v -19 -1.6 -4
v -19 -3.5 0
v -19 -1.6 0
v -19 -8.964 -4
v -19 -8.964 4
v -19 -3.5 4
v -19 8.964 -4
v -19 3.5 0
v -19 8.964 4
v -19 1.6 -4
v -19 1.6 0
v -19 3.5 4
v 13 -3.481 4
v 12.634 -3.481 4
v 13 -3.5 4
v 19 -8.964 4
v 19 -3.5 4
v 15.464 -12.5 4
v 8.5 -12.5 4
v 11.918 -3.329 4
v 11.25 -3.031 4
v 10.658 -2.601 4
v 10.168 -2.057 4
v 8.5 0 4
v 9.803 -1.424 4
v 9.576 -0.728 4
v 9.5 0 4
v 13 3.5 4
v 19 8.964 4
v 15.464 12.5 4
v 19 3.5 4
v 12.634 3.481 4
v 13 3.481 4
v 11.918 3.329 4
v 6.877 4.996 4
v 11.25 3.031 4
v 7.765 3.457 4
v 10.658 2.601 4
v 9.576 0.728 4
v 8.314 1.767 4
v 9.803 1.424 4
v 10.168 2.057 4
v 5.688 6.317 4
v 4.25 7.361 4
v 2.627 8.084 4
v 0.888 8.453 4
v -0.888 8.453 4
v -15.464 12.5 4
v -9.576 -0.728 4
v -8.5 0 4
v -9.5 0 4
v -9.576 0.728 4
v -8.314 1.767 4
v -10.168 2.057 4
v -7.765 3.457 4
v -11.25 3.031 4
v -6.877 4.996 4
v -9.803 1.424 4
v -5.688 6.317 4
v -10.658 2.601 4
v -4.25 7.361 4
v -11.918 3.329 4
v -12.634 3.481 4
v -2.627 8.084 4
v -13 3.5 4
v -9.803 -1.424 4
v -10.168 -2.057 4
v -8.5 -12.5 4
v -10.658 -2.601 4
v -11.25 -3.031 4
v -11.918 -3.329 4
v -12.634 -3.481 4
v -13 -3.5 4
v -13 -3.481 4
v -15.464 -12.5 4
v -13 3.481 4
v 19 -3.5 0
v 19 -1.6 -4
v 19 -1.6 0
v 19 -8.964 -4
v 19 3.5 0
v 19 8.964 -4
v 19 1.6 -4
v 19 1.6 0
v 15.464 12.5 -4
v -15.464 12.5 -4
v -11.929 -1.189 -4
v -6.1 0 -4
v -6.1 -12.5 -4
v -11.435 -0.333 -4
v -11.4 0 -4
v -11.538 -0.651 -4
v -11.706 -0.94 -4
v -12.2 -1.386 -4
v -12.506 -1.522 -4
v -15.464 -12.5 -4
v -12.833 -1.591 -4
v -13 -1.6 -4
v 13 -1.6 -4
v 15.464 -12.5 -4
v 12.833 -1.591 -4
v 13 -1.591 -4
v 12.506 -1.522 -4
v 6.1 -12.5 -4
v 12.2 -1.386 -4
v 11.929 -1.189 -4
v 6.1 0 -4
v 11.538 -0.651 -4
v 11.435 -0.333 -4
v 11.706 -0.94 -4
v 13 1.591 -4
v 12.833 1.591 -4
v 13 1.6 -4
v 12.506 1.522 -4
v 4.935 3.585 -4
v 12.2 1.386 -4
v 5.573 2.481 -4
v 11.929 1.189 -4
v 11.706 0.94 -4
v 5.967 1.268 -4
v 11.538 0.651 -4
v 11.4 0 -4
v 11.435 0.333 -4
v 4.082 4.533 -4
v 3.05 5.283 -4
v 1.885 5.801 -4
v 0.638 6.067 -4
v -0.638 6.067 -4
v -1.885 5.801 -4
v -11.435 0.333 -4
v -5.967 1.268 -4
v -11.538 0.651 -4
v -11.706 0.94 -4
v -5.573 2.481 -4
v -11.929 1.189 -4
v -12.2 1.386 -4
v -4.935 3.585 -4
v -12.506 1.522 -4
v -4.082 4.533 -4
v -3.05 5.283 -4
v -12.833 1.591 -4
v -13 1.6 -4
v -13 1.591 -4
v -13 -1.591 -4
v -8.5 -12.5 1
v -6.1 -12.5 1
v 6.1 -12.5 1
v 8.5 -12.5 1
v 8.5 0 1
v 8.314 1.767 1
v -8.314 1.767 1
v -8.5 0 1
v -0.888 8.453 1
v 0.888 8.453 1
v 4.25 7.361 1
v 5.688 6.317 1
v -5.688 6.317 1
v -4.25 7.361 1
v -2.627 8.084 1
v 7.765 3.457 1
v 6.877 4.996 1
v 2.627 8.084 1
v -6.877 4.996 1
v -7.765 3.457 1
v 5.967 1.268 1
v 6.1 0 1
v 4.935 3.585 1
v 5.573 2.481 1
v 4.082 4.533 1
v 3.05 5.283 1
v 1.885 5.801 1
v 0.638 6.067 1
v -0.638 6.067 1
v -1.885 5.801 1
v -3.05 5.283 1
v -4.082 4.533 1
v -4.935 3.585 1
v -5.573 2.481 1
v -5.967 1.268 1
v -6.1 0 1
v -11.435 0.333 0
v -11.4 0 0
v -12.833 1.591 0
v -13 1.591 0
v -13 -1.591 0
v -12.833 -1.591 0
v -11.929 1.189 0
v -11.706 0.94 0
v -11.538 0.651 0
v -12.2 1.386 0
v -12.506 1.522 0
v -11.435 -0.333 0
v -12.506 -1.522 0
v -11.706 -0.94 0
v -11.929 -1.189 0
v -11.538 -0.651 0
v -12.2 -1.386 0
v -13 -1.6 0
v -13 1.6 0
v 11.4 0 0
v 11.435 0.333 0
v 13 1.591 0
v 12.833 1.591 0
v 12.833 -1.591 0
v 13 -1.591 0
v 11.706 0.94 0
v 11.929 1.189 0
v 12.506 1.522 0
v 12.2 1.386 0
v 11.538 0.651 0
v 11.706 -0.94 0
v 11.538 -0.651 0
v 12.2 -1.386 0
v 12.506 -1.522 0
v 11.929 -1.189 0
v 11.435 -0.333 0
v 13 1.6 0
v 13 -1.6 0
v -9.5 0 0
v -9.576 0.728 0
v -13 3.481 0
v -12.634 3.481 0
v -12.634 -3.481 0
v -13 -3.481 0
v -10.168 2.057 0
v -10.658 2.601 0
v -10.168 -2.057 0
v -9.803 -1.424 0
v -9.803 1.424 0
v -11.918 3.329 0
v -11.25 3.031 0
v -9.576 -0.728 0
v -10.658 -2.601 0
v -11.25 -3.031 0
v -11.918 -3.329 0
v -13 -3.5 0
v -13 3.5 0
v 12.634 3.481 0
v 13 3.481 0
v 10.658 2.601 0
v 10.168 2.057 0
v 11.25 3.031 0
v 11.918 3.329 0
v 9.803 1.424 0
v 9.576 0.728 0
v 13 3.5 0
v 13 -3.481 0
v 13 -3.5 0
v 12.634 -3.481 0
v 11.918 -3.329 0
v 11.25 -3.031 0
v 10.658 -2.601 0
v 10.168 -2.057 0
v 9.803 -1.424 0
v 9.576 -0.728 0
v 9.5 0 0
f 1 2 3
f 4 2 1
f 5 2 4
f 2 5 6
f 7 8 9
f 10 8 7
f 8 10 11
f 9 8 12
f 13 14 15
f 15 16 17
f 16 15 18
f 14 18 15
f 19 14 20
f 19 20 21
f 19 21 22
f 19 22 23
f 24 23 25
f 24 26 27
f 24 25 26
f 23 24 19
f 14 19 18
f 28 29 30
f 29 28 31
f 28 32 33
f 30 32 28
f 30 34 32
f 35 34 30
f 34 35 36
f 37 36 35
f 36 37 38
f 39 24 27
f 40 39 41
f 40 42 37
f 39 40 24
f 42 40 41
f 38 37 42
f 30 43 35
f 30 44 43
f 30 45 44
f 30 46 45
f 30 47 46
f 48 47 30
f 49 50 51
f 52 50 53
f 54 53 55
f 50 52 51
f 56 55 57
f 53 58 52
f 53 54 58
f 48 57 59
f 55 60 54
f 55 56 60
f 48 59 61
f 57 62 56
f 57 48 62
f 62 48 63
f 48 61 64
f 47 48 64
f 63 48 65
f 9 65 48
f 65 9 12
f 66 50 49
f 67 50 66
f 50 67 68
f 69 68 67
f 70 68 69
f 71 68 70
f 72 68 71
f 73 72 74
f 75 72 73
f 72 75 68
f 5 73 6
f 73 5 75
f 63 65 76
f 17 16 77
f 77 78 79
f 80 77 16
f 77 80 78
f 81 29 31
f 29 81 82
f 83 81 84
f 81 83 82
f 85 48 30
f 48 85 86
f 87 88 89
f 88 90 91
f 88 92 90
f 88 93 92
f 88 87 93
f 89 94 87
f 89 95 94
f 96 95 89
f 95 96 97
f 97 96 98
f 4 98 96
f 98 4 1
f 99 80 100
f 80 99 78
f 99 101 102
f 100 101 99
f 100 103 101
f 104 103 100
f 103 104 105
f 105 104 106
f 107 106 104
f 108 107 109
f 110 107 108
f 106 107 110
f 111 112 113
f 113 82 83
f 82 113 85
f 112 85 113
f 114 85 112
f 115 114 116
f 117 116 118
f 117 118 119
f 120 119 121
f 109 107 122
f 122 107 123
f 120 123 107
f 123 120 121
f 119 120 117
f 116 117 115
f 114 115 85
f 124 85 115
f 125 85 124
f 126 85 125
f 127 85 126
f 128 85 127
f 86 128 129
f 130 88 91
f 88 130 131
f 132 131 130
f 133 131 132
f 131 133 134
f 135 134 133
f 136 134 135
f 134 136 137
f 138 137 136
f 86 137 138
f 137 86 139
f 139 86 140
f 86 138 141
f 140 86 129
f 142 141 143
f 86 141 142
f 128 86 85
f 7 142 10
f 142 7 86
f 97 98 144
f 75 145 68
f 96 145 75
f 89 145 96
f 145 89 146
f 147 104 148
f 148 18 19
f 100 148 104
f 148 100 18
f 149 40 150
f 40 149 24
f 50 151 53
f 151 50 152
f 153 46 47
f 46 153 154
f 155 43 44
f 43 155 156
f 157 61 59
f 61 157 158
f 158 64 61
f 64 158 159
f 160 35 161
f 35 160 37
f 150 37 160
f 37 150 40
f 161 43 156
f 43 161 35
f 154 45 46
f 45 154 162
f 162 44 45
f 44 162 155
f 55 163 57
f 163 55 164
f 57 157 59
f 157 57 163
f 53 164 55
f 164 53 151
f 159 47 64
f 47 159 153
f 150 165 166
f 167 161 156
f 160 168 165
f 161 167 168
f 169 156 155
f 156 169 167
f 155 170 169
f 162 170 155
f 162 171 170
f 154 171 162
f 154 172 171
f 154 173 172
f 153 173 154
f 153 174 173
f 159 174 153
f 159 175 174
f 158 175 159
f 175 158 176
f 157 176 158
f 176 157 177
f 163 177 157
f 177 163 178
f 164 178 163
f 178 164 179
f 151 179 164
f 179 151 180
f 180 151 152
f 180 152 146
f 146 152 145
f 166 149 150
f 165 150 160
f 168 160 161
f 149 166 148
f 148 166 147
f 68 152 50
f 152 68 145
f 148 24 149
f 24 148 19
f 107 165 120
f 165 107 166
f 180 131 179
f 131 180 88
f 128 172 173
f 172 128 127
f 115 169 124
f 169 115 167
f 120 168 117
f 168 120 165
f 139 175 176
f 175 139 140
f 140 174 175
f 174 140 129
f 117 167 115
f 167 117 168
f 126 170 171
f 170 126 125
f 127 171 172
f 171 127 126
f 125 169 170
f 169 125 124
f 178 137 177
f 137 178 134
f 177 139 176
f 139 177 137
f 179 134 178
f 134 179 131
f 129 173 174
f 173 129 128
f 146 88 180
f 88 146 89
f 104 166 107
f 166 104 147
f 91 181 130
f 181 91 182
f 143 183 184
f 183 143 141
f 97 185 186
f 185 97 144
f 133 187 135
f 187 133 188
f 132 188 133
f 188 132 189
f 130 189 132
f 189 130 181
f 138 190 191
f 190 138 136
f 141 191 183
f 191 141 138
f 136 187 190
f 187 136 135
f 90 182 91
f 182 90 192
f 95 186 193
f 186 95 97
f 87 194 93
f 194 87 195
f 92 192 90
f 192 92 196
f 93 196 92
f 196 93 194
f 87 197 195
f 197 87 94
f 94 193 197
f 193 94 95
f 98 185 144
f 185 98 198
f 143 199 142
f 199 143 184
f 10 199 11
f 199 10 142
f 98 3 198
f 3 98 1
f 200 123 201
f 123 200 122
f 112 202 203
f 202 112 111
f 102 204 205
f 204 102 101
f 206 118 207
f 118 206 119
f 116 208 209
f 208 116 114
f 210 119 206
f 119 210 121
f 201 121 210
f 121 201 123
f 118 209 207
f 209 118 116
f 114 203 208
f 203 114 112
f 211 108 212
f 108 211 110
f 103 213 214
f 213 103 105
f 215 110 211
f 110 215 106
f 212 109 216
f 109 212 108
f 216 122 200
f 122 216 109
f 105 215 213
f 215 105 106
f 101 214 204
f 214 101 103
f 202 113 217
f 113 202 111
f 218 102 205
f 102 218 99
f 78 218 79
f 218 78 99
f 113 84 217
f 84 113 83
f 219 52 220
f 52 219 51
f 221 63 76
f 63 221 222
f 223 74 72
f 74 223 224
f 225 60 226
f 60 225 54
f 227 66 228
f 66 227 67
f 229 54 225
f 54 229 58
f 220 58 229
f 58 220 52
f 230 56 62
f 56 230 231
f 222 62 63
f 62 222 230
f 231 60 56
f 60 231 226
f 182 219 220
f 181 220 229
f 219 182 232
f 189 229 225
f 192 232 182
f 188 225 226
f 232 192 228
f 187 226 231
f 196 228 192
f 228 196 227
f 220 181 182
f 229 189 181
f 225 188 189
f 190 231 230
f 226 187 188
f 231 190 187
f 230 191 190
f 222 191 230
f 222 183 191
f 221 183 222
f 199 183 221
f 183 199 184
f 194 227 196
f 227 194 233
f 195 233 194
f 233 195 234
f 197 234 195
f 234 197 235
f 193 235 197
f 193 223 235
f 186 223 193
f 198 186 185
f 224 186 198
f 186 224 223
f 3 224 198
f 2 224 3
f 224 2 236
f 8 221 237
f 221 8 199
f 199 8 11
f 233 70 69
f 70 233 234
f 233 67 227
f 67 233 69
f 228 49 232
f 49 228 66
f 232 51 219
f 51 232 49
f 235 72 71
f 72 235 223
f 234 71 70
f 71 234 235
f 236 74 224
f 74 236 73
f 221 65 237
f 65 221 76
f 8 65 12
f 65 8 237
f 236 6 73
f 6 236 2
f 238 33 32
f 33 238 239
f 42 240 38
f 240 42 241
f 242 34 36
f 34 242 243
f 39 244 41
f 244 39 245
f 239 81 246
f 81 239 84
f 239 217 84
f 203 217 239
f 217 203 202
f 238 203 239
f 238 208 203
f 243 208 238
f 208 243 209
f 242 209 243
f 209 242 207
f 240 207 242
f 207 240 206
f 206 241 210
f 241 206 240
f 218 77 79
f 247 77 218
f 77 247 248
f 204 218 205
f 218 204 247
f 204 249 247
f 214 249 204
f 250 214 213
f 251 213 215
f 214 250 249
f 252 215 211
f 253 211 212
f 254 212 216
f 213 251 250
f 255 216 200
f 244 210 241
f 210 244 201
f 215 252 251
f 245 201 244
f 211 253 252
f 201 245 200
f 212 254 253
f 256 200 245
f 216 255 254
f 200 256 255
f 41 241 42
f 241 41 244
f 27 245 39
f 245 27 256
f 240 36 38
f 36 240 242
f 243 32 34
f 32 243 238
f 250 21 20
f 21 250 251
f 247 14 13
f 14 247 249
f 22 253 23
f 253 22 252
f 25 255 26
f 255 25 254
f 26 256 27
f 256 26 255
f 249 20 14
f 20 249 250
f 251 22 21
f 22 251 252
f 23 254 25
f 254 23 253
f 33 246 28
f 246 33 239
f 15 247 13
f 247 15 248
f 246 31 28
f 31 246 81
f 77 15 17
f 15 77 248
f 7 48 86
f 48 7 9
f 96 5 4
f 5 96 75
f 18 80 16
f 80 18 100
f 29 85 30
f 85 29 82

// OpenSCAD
// RebeliX
//
// nozzle mount
// GNU GPL v3
// Martin Neruda
// http://www.reprap4u.cz

mount_height =8;
mount_width = 25;
mount_length = 38;
mount_jhead=5;

epsilon = 0.01;

difference(){
	union(){
	  cube([mount_length,mount_width,mount_height],center=true);
	}		
		
	translate([0,0,mount_jhead]) cylinder(r=8.5,h=mount_height,$fn=30,center=true);
	translate([0,-mount_width/2,mount_jhead]) cube([17,mount_width,mount_height],center=true);
	
	translate([0,0,-mount_height/2 - epsilon]) cylinder(r=6.1,h=mount_height,$fn=30);
	translate([0,-mount_width/2,-epsilon]) cube([12.2,mount_width,mount_height],center=true);
	
	// Otvory pro prisroubovani
	translate([-13,0,0]) cylinder(r=1.6,h=mount_height+1,$fn=30,center=true);
	translate([-13 - mount_width/2,0,0]) cube([mount_width,2*1.6,mount_height+1],center=true);
		
	translate([13,0,0]) cylinder(r=1.6,h=mount_height+1,$fn=30,center=true);
	translate([13 + mount_width/2,0,0]) cube([mount_width,2*1.6,mount_height+1],center=true);
	
	translate([-13,0,-mount_height/2 + 4]) cylinder(r=7/2,h=mount_height,$fn=30);
	translate([-13 - mount_width,-7/2,-mount_height/2 + 4]) cube([mount_width,7,mount_height]);
	
	translate([13,0,-mount_height/2 + 4]) cylinder(r=7/2,h=mount_height,$fn=30);
	translate([13,-7/2,-mount_height/2 + 4]) cube([mount_width,7,mount_height]);
	
	// Seriznute rohy
	translate([-mount_length/2,mount_width/2,0]) rotate([0,0,135]) cube([5,5,mount_height + 1],center=true);
	translate([-mount_length/2,-mount_width/2,0]) rotate([0,0,-45]) cube([5,5,mount_height + 1],center=true);
	translate([mount_length/2,-mount_width/2,0]) rotate([0,0,45]) cube([5,5,mount_height + 1],center=true);
	translate([mount_length/2,mount_width/2,0]) rotate([0,0,135]) cube([5,5,mount_height + 1],center=true);
}	
